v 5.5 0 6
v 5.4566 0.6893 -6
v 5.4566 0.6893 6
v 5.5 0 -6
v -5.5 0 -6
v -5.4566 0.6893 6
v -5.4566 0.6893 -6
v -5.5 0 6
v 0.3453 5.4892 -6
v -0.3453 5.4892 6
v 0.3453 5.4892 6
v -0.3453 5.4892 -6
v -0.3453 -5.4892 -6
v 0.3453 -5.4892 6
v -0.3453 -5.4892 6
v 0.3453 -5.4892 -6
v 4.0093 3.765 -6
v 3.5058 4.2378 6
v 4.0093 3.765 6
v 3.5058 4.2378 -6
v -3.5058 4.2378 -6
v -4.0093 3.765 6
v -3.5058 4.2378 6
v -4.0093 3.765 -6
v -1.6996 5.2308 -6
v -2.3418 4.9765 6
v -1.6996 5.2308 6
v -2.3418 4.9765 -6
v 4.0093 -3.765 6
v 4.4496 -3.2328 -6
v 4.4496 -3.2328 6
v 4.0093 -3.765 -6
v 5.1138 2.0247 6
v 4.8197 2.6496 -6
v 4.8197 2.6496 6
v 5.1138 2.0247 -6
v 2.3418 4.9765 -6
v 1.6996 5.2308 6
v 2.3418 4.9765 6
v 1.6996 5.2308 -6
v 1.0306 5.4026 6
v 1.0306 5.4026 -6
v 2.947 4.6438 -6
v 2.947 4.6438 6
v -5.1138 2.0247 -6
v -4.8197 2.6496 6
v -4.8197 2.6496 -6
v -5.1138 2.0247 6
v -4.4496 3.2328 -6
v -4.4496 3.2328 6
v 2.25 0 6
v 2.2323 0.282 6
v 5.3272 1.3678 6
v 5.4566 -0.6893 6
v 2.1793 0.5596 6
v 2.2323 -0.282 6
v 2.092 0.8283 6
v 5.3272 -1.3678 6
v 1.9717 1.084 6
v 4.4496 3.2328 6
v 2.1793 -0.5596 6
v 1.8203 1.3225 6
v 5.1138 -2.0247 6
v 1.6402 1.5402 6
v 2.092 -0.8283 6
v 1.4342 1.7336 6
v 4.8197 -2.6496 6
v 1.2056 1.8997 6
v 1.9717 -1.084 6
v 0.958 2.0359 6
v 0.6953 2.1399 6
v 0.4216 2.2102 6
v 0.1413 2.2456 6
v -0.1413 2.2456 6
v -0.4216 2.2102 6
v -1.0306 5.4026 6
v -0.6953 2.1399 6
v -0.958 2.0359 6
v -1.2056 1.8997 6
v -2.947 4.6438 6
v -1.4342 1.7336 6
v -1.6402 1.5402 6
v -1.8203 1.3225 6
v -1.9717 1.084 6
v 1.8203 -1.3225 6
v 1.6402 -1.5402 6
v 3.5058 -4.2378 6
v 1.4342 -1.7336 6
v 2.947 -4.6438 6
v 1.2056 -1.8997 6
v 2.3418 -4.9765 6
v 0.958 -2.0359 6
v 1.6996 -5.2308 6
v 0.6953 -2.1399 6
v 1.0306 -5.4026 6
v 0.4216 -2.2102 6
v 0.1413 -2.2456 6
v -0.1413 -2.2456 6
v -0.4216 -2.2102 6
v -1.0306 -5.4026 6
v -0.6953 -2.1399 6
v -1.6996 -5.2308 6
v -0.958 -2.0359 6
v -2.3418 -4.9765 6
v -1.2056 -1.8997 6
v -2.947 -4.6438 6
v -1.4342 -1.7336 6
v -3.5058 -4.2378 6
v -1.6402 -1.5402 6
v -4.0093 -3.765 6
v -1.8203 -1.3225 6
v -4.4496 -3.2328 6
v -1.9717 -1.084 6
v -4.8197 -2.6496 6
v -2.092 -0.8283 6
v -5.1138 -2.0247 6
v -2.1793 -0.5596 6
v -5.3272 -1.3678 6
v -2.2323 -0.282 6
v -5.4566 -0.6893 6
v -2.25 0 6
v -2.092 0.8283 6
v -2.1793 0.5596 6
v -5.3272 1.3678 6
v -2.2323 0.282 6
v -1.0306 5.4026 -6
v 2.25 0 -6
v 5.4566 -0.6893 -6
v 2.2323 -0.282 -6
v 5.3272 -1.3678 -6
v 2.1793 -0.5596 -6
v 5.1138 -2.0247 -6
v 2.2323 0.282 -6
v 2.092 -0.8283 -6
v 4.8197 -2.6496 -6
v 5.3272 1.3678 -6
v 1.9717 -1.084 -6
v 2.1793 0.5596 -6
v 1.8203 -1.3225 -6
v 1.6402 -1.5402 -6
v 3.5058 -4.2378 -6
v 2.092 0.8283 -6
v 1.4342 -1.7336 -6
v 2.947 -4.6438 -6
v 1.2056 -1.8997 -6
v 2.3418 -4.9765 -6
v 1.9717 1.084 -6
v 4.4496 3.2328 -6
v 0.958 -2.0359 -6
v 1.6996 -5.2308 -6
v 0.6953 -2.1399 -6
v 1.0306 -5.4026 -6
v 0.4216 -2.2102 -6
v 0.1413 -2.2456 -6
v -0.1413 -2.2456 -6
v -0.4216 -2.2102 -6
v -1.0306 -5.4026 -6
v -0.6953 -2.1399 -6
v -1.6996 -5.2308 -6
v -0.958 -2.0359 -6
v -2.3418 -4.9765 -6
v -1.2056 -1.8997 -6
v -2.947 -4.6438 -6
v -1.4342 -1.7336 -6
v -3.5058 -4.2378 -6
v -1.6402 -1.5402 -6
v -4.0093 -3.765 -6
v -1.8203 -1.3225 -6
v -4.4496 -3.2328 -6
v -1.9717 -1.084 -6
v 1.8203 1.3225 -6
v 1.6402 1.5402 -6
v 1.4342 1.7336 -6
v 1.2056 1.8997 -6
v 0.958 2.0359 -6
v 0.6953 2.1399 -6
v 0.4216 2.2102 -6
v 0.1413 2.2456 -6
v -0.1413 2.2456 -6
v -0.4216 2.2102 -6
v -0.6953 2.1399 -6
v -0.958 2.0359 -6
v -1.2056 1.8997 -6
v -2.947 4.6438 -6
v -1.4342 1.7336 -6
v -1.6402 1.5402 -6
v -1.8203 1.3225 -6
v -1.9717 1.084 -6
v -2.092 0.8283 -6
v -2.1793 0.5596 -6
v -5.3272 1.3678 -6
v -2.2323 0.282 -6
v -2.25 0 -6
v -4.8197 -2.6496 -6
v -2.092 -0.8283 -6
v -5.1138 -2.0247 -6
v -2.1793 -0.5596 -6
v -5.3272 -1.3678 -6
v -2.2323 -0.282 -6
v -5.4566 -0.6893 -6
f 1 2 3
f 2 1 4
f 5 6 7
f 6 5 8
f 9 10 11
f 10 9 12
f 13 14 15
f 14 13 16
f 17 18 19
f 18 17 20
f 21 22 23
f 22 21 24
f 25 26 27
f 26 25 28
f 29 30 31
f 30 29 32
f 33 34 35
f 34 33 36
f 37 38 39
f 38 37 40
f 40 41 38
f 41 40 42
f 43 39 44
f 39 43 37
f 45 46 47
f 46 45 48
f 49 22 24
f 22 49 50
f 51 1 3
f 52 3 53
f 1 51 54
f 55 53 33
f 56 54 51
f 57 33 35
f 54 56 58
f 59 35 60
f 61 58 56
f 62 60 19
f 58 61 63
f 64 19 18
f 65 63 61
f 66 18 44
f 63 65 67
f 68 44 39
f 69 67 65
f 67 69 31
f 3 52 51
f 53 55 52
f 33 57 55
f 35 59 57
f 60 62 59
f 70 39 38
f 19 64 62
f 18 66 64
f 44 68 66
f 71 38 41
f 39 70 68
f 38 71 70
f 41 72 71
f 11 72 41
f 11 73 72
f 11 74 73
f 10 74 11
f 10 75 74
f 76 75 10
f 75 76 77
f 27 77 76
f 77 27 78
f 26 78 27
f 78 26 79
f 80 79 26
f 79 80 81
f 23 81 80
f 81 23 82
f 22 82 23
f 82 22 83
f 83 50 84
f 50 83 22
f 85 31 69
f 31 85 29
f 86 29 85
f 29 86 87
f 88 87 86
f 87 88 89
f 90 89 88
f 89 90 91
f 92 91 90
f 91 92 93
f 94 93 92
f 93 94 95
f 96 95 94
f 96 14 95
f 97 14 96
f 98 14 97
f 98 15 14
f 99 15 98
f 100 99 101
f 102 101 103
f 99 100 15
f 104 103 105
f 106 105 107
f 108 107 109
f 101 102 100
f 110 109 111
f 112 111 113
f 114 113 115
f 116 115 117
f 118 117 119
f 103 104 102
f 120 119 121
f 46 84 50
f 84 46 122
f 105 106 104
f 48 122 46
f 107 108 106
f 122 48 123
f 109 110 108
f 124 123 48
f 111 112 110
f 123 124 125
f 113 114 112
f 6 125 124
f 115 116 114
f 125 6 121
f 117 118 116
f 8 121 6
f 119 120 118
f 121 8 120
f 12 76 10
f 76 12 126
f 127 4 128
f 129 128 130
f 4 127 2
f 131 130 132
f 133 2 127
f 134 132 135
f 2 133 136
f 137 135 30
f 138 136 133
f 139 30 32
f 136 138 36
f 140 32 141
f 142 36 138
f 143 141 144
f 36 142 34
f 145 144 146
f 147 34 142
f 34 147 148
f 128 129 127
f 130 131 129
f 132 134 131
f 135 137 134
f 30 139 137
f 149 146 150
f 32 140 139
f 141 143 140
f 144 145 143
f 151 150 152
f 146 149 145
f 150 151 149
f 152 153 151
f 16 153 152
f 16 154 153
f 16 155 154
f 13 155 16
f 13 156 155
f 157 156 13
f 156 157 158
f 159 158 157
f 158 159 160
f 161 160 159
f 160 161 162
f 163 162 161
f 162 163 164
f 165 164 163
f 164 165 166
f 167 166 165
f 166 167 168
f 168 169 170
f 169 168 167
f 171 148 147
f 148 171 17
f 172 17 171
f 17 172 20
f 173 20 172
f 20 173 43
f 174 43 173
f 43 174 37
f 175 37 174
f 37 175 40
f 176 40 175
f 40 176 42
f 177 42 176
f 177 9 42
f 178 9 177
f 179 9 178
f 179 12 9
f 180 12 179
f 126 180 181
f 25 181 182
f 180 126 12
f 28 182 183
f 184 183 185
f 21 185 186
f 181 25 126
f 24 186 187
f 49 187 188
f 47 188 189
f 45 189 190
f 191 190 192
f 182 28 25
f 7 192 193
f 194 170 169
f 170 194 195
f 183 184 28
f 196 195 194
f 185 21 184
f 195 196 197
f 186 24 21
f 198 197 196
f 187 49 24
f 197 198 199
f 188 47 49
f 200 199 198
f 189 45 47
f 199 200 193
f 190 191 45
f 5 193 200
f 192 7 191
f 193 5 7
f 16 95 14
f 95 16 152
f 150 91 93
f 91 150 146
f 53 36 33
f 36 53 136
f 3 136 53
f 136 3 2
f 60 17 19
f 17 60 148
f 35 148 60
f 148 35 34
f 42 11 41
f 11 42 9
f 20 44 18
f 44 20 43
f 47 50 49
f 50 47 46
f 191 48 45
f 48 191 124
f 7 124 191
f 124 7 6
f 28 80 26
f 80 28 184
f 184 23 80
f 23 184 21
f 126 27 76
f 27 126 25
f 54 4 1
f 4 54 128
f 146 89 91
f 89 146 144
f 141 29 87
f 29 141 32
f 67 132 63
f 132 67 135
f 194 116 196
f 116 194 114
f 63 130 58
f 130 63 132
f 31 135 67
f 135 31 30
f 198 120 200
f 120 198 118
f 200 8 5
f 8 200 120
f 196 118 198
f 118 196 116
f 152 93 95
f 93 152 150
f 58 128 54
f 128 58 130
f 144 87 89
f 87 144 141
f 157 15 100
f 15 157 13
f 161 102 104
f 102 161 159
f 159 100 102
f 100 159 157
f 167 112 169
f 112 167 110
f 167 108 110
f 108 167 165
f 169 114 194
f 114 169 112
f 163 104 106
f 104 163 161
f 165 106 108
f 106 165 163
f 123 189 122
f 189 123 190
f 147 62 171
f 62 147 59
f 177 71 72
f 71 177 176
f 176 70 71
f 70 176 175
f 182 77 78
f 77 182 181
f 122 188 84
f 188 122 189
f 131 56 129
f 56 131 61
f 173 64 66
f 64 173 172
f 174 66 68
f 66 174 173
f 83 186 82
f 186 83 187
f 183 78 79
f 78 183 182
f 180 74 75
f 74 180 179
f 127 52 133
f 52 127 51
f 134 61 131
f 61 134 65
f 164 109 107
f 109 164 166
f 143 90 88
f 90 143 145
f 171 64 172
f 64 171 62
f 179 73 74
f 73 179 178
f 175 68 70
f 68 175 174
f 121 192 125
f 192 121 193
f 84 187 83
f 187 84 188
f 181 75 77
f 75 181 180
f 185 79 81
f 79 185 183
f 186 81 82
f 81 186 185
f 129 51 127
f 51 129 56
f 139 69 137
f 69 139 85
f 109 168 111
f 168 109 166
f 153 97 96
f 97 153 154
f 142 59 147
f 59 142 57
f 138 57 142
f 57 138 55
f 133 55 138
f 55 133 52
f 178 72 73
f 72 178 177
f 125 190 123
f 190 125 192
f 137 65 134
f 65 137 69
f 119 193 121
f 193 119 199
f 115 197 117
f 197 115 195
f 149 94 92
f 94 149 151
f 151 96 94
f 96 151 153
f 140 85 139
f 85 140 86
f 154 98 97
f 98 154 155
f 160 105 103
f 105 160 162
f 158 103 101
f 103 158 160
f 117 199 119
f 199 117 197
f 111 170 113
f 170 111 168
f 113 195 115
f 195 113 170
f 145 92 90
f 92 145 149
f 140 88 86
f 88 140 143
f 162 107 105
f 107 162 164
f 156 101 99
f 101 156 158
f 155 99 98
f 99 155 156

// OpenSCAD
$fn = 50;


difference() {
	union() {
		translate(v = [0, 0, -6.0000000000]) {
			cylinder(h = 12, r = 5.5000000000);
		}
	}
	union() {
		translate(v = [0, 0, -100.0000000000]) {
			cylinder(h = 200, r = 2.2500000000);
		}
	}
}
